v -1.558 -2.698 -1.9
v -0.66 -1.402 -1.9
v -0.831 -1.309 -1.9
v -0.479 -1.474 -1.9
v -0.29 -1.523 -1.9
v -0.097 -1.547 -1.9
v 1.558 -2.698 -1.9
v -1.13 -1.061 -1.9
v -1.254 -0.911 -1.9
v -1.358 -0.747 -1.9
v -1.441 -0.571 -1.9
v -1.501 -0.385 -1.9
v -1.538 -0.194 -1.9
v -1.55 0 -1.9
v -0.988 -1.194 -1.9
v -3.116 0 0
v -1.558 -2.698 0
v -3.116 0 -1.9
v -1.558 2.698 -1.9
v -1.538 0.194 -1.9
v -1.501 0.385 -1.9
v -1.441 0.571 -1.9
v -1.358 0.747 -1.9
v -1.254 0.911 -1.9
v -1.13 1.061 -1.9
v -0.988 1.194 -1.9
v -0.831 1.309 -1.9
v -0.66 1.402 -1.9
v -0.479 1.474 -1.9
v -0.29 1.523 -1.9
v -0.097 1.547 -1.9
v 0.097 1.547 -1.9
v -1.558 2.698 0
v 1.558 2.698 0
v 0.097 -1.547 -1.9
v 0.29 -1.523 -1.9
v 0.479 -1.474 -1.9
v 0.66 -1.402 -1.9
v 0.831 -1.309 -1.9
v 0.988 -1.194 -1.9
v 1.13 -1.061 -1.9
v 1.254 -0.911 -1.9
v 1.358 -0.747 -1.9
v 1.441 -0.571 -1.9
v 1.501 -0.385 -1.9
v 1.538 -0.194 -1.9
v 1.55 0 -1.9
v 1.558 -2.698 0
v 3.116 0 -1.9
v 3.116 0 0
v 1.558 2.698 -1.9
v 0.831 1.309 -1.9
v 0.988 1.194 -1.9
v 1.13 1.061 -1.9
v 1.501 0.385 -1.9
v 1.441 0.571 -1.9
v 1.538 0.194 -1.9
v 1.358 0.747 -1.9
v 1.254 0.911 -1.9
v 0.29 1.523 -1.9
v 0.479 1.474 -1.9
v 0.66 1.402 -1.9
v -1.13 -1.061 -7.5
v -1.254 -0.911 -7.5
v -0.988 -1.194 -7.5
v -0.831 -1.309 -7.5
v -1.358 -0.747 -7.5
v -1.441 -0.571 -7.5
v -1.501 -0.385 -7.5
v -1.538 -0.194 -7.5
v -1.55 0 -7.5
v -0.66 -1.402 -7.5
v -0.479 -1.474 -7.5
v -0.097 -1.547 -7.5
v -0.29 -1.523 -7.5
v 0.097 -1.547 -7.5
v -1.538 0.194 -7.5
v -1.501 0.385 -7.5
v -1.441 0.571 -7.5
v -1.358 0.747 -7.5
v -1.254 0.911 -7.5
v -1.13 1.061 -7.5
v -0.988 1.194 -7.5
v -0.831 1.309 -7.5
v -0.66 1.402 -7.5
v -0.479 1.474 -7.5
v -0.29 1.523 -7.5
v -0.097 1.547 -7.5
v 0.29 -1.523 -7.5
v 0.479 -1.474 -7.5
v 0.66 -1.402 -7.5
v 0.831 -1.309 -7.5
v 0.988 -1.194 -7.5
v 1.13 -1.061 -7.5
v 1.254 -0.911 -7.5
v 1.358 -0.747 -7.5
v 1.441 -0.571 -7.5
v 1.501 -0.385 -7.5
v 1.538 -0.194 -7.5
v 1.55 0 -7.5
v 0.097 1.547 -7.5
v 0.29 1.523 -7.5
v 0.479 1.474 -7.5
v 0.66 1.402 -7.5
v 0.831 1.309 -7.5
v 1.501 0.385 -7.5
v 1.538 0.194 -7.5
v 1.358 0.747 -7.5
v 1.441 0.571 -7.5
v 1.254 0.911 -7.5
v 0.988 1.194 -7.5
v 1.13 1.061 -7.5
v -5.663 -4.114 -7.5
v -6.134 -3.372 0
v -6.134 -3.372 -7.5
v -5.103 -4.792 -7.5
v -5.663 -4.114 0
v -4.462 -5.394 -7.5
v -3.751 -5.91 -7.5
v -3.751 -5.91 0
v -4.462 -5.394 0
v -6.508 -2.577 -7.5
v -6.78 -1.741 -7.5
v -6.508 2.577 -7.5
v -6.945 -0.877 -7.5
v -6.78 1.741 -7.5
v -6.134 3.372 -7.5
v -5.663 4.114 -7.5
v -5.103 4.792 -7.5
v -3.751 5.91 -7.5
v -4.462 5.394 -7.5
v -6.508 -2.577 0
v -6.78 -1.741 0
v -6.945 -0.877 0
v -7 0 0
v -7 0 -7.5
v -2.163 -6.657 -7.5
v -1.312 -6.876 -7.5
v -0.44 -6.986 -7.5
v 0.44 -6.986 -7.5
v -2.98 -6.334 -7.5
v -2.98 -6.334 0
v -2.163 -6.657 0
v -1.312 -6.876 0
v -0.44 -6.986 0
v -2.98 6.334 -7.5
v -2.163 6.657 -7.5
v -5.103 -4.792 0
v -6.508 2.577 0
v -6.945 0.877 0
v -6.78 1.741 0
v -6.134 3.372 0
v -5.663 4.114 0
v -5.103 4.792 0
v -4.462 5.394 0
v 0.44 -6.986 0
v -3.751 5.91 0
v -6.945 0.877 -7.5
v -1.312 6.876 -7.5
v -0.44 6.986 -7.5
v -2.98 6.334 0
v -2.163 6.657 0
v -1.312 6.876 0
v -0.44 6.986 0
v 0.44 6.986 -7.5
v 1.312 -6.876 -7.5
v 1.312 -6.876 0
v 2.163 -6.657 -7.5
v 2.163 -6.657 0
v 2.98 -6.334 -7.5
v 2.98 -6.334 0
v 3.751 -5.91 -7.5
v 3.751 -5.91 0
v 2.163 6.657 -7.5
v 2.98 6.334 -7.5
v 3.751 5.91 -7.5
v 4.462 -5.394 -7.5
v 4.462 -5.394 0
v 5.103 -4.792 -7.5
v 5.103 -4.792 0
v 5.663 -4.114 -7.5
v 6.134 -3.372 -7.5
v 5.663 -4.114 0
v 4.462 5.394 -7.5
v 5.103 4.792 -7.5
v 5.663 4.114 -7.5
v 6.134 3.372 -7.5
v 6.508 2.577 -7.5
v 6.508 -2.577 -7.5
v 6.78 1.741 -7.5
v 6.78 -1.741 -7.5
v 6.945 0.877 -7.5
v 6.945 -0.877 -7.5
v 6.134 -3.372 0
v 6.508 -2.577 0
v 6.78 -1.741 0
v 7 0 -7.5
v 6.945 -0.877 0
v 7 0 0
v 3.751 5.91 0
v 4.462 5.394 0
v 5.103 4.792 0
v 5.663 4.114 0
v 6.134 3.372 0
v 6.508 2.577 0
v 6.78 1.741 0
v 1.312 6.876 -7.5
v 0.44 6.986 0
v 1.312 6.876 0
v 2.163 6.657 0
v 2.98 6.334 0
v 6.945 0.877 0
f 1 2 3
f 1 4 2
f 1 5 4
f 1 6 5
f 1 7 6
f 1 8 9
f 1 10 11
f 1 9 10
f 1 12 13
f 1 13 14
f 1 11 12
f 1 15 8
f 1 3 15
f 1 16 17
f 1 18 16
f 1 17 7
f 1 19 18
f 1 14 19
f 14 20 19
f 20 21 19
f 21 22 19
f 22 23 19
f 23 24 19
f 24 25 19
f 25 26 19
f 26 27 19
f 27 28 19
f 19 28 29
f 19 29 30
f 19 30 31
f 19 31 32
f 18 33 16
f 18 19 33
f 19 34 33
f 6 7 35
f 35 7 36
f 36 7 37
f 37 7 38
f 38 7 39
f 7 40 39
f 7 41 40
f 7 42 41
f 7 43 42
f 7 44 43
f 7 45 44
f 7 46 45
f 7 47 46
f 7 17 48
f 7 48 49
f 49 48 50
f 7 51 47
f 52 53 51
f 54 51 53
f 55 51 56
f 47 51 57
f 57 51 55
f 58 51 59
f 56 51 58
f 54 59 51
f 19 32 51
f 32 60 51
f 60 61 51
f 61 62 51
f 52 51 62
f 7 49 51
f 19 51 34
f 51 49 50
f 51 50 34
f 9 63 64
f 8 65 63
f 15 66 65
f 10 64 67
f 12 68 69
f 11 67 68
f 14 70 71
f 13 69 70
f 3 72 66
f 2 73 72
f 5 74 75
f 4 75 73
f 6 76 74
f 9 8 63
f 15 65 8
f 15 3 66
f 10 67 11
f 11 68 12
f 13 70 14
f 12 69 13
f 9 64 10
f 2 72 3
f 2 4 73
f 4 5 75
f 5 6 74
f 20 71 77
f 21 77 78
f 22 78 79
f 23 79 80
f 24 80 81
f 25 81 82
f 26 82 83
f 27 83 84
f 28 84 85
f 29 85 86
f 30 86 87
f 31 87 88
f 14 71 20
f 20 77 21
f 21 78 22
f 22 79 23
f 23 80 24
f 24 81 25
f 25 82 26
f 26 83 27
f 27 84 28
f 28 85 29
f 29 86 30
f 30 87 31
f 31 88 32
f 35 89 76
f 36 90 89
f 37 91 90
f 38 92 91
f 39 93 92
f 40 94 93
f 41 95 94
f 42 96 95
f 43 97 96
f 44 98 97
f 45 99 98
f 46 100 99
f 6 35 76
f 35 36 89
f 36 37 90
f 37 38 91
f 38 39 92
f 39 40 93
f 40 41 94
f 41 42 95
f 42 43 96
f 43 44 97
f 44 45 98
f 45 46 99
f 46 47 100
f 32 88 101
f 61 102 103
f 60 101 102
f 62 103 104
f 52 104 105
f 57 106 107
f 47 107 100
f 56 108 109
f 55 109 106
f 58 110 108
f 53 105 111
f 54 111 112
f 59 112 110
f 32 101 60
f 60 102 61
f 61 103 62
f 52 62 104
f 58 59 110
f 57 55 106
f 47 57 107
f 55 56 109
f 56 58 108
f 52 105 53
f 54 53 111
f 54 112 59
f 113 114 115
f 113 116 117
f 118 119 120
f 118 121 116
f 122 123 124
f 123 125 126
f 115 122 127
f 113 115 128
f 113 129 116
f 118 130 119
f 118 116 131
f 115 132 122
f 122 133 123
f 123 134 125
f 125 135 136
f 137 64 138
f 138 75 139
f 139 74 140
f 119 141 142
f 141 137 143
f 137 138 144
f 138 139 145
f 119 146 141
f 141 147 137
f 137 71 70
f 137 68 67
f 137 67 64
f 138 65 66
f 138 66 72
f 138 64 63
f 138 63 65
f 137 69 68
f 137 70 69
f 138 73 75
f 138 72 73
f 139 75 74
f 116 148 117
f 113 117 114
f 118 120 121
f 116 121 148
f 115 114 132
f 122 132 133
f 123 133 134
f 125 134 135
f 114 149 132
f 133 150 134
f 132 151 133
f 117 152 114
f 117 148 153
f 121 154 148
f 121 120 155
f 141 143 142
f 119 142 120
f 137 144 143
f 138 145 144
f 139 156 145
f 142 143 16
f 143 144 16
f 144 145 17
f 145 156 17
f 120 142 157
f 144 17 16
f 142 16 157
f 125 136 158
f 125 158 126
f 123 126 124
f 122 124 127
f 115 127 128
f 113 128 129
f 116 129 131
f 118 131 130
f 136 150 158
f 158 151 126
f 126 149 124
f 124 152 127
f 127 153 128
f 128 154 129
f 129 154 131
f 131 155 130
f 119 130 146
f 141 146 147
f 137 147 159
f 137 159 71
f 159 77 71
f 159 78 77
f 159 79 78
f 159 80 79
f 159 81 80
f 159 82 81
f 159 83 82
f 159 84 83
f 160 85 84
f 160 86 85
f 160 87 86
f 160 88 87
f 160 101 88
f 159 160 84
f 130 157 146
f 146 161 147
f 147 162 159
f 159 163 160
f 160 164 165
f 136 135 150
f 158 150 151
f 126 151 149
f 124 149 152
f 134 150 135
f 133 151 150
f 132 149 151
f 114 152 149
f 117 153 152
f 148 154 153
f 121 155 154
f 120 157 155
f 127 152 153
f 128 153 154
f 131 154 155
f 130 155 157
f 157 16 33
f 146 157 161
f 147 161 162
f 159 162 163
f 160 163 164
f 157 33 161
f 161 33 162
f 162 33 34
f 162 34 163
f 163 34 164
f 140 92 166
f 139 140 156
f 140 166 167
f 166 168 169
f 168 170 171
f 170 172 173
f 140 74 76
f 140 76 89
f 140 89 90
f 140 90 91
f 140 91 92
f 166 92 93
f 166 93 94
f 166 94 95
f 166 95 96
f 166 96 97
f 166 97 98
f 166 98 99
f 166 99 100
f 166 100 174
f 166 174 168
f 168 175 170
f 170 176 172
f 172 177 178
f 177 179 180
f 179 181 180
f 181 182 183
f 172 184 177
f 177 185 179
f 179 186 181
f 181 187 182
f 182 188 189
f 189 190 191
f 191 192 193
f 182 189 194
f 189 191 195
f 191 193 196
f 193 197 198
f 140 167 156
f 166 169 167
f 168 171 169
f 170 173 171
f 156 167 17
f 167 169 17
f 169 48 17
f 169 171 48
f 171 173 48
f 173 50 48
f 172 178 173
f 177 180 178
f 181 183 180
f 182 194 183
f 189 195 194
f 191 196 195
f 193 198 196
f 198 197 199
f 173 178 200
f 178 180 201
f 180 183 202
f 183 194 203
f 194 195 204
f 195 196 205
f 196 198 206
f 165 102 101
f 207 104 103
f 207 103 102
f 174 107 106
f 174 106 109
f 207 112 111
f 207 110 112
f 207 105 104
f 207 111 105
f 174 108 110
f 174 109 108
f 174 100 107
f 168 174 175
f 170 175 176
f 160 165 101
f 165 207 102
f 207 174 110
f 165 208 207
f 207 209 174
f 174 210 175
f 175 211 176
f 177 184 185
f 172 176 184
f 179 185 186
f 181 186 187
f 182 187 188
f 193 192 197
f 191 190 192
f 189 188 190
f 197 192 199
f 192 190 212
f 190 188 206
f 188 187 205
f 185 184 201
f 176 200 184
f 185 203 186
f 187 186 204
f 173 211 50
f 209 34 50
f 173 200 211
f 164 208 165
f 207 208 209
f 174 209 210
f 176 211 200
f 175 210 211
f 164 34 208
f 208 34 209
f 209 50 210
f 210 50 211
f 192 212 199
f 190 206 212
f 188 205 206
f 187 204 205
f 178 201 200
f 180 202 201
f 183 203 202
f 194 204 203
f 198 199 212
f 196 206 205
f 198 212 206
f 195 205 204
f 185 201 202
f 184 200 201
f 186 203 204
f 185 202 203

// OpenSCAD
$fn = 50;

difference() {
	union() {
		translate(v = [0, 0, -7.5]) {
			cylinder(h = 7.5, r = 7.0);
		}
	}
	union() {
		translate(v = [0, 0, 0]) {
			rotate(a = [0, 0, 0]) {
				difference() {
					union() {
						translate(v = [0, 0, -1.9]) {
							linear_extrude(height = 1.9) {
								polygon(points = [[3.1158, 0.0], [1.5579000000000005, 2.698361953111554], [-1.5578999999999994, 2.6983619531115544], [-3.1158, 3.815754496783323e-16], [-1.5579000000000014, -2.6983619531115535], [1.557899999999998, -2.6983619531115552]]);
							}
						}
					}
					union();
				}
			}
		}
		#translate(v = [0, 0, -100.0]) {
			cylinder(h = 200, r = 1.55);
		}
	}
}
